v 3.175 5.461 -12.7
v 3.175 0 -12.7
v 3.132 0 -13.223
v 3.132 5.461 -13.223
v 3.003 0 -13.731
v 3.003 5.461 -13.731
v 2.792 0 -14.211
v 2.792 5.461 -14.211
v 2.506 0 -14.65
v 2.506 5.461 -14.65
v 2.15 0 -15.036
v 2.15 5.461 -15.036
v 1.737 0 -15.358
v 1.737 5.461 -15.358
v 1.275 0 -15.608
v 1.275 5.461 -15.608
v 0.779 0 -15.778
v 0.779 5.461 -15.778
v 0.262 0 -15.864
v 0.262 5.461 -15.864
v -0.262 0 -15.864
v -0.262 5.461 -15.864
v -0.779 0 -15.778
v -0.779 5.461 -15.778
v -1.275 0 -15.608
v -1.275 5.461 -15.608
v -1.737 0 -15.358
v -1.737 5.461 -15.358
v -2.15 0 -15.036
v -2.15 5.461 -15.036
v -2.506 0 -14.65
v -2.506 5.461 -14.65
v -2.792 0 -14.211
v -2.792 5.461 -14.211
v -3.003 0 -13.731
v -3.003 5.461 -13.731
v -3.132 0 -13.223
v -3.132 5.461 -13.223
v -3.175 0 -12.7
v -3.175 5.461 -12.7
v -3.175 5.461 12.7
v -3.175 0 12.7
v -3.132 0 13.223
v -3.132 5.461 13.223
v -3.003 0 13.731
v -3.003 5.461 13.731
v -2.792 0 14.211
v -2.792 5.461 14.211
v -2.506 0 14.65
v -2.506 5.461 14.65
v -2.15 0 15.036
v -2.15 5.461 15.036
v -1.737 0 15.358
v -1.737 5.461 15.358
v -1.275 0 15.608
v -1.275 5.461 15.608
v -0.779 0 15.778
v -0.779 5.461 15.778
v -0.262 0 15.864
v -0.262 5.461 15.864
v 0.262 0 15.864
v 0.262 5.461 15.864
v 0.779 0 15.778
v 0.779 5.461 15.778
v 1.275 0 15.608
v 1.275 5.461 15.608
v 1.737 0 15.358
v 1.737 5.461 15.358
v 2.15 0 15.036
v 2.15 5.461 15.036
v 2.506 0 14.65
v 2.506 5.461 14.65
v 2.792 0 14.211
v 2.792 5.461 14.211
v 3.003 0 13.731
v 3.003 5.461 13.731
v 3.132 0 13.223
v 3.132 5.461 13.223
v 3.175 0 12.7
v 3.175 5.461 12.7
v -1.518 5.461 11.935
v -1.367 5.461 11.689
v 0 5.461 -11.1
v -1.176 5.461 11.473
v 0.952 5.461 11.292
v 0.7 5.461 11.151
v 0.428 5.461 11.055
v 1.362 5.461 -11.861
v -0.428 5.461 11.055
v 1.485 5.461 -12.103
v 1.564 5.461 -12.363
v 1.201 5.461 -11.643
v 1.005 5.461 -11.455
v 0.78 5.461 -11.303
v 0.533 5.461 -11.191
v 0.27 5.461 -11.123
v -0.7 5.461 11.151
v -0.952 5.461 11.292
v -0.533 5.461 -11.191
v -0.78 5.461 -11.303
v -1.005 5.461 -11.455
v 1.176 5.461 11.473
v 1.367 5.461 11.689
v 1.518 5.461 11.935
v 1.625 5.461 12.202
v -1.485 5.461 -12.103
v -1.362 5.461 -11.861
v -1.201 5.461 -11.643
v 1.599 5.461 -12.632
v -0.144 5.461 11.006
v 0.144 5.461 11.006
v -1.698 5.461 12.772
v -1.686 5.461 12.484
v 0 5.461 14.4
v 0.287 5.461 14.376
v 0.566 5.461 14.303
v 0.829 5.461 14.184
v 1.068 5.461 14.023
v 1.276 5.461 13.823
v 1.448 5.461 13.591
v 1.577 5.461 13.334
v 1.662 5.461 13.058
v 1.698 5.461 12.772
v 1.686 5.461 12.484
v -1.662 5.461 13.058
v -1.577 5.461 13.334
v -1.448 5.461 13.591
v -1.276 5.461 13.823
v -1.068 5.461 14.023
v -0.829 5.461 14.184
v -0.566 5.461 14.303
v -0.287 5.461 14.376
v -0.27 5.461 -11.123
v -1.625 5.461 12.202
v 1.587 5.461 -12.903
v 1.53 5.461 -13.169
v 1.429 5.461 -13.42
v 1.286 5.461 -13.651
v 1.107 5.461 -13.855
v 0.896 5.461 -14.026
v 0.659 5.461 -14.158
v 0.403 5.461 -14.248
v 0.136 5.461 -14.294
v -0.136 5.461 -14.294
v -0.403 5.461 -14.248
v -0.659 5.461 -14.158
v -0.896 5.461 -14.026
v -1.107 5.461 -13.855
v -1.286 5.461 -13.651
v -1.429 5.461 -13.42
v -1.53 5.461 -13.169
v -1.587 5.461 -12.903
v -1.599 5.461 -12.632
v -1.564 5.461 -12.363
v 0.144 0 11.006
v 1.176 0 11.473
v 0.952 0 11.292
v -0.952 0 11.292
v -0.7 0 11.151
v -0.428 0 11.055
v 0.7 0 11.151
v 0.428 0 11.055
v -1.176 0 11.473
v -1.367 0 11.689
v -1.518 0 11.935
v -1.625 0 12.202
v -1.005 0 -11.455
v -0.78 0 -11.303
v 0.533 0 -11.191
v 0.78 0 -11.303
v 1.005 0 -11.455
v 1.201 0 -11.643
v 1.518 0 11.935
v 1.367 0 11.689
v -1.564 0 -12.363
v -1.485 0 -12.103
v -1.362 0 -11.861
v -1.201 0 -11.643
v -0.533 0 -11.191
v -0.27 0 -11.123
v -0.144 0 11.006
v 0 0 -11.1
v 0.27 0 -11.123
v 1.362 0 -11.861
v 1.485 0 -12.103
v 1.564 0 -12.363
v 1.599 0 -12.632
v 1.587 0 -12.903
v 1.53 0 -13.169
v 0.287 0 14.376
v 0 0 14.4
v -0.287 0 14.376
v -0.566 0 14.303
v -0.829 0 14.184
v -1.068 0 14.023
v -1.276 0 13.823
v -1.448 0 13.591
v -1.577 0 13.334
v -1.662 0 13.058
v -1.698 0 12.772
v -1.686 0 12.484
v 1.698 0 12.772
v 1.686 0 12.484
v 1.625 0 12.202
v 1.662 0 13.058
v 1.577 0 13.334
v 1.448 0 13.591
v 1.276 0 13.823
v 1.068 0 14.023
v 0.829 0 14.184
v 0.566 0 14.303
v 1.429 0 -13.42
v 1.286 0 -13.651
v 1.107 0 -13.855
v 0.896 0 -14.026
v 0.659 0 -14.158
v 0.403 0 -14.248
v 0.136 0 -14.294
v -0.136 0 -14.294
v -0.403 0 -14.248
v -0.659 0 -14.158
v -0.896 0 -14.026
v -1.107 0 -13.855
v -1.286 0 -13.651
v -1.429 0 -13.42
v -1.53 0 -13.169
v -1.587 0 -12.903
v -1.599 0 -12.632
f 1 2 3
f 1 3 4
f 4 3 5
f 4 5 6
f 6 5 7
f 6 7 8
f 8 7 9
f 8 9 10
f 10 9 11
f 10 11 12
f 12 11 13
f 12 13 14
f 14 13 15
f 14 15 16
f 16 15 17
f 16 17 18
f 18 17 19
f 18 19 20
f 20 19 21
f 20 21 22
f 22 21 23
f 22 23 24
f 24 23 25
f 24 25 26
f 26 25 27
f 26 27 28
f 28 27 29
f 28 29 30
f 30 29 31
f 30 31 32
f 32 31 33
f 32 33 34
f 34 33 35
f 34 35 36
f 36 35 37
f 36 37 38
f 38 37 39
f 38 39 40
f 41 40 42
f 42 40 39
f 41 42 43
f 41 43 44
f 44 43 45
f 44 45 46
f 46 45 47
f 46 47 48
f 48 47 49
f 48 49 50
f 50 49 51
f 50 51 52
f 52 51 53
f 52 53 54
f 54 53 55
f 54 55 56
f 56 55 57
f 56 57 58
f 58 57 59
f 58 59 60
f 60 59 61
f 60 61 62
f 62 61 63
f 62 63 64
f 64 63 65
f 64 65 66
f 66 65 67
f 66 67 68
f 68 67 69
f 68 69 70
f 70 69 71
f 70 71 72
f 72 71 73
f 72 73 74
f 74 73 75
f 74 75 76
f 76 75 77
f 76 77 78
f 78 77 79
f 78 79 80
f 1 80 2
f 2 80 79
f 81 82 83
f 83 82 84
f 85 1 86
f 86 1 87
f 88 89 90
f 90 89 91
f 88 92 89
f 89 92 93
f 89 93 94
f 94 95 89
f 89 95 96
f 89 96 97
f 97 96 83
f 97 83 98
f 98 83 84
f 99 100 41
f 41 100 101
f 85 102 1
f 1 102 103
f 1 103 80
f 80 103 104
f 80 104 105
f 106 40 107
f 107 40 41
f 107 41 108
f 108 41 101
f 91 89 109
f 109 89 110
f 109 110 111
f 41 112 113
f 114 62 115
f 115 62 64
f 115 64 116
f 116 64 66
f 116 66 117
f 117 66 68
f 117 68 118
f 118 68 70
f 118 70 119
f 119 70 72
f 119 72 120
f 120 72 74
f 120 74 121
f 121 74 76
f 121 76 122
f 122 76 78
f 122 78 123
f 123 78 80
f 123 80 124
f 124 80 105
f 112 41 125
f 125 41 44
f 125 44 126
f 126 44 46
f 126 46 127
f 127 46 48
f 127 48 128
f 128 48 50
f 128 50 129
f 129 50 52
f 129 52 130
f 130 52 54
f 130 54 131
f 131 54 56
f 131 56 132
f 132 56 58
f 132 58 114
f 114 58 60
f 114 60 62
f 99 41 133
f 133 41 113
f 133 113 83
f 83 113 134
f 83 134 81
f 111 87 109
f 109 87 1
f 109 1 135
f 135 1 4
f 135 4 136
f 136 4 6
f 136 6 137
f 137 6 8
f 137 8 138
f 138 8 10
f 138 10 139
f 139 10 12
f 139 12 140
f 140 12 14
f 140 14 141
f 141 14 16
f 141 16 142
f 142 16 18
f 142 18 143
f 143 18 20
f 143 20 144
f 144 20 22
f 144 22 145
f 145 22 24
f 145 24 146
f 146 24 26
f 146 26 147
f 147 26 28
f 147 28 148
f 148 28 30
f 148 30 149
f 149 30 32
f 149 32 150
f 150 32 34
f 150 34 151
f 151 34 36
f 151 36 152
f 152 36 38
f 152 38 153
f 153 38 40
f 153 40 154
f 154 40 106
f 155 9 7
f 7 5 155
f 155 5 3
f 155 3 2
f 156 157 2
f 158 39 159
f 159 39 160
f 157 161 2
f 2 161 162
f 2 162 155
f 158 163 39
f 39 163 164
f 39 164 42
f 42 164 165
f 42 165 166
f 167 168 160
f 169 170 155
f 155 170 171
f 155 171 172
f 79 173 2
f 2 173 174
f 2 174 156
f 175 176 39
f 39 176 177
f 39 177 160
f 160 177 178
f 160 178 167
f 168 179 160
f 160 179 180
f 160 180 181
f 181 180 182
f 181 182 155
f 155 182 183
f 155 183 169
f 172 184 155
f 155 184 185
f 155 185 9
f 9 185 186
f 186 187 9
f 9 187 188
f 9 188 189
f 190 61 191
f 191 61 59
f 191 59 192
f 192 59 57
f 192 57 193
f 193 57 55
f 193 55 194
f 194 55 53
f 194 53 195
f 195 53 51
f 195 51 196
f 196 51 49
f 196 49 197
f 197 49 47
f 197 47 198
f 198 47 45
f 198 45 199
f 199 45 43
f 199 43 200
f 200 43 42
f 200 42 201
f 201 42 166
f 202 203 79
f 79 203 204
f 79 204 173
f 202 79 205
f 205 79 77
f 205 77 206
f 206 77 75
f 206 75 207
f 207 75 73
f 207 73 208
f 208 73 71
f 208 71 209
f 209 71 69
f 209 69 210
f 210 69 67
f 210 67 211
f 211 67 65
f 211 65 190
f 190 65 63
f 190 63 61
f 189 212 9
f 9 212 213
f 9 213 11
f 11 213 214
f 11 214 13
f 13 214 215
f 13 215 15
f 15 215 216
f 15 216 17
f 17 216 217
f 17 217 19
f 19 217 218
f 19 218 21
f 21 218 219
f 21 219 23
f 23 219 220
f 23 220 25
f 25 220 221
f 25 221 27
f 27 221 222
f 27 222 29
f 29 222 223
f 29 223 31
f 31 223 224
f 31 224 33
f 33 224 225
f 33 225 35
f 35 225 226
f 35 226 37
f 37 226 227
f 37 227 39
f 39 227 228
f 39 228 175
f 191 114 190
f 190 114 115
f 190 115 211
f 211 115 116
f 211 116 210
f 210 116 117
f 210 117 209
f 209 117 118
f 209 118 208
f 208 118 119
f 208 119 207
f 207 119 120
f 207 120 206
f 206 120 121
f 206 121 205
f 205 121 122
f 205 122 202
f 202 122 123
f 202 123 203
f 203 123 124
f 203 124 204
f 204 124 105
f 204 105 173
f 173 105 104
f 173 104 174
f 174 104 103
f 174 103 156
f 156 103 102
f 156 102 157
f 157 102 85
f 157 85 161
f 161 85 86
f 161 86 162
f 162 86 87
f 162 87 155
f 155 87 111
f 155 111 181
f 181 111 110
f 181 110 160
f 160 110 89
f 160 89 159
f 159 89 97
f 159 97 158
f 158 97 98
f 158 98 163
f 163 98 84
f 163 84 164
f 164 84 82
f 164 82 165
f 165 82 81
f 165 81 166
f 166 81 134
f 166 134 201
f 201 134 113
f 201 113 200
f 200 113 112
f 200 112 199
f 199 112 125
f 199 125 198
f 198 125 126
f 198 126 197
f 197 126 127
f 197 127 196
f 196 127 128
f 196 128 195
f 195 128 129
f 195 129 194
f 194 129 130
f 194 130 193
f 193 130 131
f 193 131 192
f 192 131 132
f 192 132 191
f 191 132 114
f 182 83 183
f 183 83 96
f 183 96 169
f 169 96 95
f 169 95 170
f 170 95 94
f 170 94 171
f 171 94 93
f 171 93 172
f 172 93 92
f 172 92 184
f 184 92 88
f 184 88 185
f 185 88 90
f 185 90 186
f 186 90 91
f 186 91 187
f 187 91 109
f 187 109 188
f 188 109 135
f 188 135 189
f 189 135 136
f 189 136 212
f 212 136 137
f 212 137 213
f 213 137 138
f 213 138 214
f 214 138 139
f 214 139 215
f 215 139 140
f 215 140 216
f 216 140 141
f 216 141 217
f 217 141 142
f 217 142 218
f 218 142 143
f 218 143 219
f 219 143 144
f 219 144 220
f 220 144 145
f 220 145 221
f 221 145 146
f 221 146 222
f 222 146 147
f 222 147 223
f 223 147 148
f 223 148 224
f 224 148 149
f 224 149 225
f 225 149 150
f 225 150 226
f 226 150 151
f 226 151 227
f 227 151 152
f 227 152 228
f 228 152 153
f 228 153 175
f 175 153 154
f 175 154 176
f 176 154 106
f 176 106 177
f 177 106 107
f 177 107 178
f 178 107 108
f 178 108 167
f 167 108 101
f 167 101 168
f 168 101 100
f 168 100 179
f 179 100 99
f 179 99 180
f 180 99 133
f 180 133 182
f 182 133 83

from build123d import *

# Parameters (mm, degrees)
BOSS_EXTRUDE1_DEPTH              = 5.461
M3_CLEARANCE_HOLE_CLEARANCE_D    = 3.3
M3_CLEARANCE_HOLE_INTERFERENCE_D = 3.1


with BuildPart() as part:
    # Sketch1 → Boss-Extrude1 (new body)
    with BuildSketch(Plane(origin=(0, 0, 0), x_dir=(1, 0, 0), z_dir=(0, 1, 0))):
        with BuildLine():
            Line((-3.175, -12.7), (-3.175, 12.7))
            ThreePointArc((-3.175, 12.7), (0, 15.875), (3.175, 12.7))
            Line((3.175, 12.7), (3.175, -12.7))
            ThreePointArc((3.175, -12.7), (0, -15.875), (-3.175, -12.7))
        make_face()
    extrude(amount=BOSS_EXTRUDE1_DEPTH)

    # M3 Clearance Hole clearance (through all)
    with Locations(Plane(origin=(0, 5.461, 0), x_dir=(1, 0, 0), z_dir=(0, 1, 0))):
        with Locations((0, -12.7)):
            Hole(M3_CLEARANCE_HOLE_CLEARANCE_D / 2)

    # M3 Clearance Hole interference (through all)
    with Locations(Plane(origin=(0, 5.461, 0), x_dir=(1, 0, 0), z_dir=(0, 1, 0))):
        with Locations((0, 12.7)):
            Hole(M3_CLEARANCE_HOLE_INTERFERENCE_D / 2)


solid = part.part
